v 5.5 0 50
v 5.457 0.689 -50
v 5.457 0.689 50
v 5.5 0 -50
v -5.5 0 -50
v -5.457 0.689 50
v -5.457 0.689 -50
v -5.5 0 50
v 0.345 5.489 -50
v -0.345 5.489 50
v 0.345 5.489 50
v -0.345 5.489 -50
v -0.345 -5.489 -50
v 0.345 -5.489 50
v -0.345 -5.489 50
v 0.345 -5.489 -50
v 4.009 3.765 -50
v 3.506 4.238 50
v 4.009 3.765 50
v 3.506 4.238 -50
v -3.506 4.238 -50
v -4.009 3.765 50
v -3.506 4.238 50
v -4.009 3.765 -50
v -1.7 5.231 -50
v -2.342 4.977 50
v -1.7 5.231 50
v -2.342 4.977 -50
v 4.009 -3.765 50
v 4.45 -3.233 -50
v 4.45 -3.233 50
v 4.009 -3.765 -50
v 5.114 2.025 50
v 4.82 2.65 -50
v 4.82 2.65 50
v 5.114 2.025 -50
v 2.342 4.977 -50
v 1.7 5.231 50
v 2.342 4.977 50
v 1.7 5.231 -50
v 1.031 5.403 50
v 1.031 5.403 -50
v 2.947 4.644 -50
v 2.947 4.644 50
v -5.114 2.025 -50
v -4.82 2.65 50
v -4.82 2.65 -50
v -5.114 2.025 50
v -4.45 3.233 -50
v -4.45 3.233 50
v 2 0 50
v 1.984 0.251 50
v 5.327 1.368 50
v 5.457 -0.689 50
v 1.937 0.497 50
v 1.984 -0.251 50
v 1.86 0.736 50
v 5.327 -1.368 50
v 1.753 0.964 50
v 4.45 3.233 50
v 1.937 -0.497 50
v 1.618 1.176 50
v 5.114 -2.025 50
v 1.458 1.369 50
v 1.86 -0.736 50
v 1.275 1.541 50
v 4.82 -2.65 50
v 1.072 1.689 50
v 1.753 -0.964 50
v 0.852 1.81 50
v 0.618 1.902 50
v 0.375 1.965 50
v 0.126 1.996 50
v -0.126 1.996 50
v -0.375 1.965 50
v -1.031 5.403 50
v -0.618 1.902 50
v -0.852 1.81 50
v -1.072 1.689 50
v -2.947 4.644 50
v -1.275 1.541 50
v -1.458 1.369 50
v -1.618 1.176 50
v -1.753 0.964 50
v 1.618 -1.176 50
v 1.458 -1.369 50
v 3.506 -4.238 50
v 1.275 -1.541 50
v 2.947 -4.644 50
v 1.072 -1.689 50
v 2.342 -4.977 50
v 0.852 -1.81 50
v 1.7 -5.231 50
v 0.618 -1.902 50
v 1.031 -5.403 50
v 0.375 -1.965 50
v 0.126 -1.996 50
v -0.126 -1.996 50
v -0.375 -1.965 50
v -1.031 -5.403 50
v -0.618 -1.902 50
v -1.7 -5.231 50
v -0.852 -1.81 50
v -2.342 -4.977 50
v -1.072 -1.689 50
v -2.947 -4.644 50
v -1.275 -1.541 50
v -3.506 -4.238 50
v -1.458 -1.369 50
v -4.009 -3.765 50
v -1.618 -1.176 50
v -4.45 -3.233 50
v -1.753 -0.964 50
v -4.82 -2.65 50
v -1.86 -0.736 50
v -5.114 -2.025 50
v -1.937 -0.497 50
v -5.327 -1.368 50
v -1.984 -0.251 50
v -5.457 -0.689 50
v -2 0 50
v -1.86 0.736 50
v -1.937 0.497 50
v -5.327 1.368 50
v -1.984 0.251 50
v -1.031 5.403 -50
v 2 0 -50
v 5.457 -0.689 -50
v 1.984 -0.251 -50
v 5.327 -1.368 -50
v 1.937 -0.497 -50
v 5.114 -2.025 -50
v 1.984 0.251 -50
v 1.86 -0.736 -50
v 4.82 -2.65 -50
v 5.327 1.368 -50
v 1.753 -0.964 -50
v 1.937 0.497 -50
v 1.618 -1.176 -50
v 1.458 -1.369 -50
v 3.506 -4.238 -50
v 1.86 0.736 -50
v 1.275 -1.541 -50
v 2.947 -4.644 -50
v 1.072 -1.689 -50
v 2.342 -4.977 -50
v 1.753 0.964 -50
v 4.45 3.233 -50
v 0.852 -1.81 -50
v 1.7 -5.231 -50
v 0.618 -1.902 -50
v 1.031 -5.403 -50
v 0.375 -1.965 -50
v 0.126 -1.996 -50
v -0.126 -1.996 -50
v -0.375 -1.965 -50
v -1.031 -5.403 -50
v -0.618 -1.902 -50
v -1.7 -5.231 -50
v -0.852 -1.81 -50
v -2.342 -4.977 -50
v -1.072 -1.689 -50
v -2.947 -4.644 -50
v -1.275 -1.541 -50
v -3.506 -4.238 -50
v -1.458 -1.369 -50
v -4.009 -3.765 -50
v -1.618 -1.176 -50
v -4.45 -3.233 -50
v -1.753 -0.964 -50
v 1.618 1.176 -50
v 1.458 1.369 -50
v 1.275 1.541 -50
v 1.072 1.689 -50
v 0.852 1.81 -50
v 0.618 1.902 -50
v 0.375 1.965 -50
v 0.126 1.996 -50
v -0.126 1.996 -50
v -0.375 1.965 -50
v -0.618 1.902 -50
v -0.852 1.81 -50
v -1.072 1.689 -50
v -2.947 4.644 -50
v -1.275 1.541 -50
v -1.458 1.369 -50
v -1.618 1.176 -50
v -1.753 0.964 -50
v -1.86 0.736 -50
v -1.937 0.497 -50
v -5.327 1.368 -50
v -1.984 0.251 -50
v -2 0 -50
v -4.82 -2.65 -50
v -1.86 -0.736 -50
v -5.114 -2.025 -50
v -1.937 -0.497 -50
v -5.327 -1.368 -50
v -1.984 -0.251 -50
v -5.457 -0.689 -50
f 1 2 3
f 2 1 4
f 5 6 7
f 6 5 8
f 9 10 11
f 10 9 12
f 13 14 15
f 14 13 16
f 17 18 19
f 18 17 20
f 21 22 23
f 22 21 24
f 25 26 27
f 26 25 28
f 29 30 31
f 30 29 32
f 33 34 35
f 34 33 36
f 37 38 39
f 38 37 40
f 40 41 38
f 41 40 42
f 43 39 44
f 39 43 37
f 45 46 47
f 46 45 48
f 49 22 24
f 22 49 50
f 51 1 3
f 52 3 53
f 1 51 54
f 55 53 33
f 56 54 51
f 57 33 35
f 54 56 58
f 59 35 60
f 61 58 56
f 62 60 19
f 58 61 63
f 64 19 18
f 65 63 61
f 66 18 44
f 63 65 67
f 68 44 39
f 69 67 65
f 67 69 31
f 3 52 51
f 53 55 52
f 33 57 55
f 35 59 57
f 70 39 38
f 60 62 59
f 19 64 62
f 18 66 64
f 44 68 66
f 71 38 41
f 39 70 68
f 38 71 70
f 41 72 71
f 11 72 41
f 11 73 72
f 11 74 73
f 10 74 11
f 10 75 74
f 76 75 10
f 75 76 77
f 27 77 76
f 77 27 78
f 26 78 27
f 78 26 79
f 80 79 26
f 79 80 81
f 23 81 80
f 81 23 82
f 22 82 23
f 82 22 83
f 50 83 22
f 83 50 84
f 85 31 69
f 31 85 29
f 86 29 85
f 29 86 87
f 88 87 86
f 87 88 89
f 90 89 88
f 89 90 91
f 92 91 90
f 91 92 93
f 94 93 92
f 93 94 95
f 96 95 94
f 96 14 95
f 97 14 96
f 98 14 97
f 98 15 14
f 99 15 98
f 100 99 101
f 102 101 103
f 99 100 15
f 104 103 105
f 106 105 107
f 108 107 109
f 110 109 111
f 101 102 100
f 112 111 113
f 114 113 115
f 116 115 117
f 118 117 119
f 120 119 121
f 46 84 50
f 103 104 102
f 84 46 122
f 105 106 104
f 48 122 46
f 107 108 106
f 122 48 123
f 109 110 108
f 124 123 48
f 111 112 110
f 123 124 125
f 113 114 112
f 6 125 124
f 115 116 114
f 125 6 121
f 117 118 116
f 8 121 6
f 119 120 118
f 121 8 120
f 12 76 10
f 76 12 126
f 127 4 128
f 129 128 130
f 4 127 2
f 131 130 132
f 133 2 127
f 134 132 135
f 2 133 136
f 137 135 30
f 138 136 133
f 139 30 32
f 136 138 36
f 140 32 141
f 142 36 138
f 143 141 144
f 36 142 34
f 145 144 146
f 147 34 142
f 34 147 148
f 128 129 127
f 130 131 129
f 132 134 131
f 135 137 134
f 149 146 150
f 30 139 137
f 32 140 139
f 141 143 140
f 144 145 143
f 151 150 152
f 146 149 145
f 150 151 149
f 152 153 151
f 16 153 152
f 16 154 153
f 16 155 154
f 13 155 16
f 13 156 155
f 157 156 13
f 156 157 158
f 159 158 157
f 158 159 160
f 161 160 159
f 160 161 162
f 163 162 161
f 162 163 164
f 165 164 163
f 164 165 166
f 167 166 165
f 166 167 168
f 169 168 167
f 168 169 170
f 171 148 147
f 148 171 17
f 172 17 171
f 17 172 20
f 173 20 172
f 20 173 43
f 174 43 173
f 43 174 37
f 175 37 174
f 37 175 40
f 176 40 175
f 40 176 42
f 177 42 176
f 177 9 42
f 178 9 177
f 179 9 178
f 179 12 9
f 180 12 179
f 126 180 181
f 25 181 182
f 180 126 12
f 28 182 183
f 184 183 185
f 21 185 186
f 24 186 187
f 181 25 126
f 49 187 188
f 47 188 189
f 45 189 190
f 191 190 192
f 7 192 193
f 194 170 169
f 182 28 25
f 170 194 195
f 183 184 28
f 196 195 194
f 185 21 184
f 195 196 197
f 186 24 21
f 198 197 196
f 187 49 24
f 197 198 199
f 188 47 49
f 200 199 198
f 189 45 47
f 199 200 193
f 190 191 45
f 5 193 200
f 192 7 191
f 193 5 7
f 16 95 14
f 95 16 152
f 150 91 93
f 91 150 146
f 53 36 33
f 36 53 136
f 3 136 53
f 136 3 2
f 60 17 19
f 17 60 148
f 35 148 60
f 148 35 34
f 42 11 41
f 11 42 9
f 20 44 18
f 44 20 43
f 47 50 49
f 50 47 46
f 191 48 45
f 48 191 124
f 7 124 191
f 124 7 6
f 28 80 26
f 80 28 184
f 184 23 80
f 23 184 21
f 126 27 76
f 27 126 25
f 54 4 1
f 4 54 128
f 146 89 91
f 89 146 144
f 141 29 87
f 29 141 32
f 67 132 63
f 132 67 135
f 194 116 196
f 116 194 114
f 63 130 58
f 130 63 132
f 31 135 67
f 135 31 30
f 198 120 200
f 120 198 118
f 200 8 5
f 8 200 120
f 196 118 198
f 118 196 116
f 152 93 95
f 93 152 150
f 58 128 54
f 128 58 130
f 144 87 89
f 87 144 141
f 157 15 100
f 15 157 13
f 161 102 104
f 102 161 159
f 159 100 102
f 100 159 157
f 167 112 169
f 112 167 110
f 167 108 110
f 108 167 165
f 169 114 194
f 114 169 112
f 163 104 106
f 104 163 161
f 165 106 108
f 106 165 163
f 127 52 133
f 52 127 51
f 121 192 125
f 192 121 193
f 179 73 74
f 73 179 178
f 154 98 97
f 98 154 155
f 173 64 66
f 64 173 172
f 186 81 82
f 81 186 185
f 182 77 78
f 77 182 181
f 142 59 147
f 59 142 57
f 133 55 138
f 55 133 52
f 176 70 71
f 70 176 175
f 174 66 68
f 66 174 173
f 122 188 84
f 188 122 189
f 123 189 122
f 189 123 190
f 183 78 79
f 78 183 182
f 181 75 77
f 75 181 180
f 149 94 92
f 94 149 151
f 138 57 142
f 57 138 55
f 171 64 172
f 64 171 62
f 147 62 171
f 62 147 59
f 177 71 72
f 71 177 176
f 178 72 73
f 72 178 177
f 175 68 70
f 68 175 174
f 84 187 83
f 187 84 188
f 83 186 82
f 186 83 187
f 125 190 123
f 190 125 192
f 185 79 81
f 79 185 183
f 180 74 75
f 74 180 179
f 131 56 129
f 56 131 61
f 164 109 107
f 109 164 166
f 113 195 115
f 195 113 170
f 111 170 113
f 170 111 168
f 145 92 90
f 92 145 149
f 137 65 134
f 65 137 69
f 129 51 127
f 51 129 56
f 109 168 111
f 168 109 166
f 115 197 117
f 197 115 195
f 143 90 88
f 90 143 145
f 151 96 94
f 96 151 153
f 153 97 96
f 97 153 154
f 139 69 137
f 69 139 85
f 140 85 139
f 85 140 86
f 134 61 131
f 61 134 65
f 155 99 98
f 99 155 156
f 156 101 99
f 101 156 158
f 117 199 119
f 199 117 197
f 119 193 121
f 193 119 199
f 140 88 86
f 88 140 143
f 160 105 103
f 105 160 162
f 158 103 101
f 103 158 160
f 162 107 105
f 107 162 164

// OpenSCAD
$fn = 50;


difference() {
	union() {
		translate(v = [0, 0, -50.0000000000]) {
			cylinder(h = 100, r = 5.5000000000);
		}
	}
	union() {
		translate(v = [0, 0, -100.0000000000]) {
			cylinder(h = 200, r = 2);
		}
	}
}
